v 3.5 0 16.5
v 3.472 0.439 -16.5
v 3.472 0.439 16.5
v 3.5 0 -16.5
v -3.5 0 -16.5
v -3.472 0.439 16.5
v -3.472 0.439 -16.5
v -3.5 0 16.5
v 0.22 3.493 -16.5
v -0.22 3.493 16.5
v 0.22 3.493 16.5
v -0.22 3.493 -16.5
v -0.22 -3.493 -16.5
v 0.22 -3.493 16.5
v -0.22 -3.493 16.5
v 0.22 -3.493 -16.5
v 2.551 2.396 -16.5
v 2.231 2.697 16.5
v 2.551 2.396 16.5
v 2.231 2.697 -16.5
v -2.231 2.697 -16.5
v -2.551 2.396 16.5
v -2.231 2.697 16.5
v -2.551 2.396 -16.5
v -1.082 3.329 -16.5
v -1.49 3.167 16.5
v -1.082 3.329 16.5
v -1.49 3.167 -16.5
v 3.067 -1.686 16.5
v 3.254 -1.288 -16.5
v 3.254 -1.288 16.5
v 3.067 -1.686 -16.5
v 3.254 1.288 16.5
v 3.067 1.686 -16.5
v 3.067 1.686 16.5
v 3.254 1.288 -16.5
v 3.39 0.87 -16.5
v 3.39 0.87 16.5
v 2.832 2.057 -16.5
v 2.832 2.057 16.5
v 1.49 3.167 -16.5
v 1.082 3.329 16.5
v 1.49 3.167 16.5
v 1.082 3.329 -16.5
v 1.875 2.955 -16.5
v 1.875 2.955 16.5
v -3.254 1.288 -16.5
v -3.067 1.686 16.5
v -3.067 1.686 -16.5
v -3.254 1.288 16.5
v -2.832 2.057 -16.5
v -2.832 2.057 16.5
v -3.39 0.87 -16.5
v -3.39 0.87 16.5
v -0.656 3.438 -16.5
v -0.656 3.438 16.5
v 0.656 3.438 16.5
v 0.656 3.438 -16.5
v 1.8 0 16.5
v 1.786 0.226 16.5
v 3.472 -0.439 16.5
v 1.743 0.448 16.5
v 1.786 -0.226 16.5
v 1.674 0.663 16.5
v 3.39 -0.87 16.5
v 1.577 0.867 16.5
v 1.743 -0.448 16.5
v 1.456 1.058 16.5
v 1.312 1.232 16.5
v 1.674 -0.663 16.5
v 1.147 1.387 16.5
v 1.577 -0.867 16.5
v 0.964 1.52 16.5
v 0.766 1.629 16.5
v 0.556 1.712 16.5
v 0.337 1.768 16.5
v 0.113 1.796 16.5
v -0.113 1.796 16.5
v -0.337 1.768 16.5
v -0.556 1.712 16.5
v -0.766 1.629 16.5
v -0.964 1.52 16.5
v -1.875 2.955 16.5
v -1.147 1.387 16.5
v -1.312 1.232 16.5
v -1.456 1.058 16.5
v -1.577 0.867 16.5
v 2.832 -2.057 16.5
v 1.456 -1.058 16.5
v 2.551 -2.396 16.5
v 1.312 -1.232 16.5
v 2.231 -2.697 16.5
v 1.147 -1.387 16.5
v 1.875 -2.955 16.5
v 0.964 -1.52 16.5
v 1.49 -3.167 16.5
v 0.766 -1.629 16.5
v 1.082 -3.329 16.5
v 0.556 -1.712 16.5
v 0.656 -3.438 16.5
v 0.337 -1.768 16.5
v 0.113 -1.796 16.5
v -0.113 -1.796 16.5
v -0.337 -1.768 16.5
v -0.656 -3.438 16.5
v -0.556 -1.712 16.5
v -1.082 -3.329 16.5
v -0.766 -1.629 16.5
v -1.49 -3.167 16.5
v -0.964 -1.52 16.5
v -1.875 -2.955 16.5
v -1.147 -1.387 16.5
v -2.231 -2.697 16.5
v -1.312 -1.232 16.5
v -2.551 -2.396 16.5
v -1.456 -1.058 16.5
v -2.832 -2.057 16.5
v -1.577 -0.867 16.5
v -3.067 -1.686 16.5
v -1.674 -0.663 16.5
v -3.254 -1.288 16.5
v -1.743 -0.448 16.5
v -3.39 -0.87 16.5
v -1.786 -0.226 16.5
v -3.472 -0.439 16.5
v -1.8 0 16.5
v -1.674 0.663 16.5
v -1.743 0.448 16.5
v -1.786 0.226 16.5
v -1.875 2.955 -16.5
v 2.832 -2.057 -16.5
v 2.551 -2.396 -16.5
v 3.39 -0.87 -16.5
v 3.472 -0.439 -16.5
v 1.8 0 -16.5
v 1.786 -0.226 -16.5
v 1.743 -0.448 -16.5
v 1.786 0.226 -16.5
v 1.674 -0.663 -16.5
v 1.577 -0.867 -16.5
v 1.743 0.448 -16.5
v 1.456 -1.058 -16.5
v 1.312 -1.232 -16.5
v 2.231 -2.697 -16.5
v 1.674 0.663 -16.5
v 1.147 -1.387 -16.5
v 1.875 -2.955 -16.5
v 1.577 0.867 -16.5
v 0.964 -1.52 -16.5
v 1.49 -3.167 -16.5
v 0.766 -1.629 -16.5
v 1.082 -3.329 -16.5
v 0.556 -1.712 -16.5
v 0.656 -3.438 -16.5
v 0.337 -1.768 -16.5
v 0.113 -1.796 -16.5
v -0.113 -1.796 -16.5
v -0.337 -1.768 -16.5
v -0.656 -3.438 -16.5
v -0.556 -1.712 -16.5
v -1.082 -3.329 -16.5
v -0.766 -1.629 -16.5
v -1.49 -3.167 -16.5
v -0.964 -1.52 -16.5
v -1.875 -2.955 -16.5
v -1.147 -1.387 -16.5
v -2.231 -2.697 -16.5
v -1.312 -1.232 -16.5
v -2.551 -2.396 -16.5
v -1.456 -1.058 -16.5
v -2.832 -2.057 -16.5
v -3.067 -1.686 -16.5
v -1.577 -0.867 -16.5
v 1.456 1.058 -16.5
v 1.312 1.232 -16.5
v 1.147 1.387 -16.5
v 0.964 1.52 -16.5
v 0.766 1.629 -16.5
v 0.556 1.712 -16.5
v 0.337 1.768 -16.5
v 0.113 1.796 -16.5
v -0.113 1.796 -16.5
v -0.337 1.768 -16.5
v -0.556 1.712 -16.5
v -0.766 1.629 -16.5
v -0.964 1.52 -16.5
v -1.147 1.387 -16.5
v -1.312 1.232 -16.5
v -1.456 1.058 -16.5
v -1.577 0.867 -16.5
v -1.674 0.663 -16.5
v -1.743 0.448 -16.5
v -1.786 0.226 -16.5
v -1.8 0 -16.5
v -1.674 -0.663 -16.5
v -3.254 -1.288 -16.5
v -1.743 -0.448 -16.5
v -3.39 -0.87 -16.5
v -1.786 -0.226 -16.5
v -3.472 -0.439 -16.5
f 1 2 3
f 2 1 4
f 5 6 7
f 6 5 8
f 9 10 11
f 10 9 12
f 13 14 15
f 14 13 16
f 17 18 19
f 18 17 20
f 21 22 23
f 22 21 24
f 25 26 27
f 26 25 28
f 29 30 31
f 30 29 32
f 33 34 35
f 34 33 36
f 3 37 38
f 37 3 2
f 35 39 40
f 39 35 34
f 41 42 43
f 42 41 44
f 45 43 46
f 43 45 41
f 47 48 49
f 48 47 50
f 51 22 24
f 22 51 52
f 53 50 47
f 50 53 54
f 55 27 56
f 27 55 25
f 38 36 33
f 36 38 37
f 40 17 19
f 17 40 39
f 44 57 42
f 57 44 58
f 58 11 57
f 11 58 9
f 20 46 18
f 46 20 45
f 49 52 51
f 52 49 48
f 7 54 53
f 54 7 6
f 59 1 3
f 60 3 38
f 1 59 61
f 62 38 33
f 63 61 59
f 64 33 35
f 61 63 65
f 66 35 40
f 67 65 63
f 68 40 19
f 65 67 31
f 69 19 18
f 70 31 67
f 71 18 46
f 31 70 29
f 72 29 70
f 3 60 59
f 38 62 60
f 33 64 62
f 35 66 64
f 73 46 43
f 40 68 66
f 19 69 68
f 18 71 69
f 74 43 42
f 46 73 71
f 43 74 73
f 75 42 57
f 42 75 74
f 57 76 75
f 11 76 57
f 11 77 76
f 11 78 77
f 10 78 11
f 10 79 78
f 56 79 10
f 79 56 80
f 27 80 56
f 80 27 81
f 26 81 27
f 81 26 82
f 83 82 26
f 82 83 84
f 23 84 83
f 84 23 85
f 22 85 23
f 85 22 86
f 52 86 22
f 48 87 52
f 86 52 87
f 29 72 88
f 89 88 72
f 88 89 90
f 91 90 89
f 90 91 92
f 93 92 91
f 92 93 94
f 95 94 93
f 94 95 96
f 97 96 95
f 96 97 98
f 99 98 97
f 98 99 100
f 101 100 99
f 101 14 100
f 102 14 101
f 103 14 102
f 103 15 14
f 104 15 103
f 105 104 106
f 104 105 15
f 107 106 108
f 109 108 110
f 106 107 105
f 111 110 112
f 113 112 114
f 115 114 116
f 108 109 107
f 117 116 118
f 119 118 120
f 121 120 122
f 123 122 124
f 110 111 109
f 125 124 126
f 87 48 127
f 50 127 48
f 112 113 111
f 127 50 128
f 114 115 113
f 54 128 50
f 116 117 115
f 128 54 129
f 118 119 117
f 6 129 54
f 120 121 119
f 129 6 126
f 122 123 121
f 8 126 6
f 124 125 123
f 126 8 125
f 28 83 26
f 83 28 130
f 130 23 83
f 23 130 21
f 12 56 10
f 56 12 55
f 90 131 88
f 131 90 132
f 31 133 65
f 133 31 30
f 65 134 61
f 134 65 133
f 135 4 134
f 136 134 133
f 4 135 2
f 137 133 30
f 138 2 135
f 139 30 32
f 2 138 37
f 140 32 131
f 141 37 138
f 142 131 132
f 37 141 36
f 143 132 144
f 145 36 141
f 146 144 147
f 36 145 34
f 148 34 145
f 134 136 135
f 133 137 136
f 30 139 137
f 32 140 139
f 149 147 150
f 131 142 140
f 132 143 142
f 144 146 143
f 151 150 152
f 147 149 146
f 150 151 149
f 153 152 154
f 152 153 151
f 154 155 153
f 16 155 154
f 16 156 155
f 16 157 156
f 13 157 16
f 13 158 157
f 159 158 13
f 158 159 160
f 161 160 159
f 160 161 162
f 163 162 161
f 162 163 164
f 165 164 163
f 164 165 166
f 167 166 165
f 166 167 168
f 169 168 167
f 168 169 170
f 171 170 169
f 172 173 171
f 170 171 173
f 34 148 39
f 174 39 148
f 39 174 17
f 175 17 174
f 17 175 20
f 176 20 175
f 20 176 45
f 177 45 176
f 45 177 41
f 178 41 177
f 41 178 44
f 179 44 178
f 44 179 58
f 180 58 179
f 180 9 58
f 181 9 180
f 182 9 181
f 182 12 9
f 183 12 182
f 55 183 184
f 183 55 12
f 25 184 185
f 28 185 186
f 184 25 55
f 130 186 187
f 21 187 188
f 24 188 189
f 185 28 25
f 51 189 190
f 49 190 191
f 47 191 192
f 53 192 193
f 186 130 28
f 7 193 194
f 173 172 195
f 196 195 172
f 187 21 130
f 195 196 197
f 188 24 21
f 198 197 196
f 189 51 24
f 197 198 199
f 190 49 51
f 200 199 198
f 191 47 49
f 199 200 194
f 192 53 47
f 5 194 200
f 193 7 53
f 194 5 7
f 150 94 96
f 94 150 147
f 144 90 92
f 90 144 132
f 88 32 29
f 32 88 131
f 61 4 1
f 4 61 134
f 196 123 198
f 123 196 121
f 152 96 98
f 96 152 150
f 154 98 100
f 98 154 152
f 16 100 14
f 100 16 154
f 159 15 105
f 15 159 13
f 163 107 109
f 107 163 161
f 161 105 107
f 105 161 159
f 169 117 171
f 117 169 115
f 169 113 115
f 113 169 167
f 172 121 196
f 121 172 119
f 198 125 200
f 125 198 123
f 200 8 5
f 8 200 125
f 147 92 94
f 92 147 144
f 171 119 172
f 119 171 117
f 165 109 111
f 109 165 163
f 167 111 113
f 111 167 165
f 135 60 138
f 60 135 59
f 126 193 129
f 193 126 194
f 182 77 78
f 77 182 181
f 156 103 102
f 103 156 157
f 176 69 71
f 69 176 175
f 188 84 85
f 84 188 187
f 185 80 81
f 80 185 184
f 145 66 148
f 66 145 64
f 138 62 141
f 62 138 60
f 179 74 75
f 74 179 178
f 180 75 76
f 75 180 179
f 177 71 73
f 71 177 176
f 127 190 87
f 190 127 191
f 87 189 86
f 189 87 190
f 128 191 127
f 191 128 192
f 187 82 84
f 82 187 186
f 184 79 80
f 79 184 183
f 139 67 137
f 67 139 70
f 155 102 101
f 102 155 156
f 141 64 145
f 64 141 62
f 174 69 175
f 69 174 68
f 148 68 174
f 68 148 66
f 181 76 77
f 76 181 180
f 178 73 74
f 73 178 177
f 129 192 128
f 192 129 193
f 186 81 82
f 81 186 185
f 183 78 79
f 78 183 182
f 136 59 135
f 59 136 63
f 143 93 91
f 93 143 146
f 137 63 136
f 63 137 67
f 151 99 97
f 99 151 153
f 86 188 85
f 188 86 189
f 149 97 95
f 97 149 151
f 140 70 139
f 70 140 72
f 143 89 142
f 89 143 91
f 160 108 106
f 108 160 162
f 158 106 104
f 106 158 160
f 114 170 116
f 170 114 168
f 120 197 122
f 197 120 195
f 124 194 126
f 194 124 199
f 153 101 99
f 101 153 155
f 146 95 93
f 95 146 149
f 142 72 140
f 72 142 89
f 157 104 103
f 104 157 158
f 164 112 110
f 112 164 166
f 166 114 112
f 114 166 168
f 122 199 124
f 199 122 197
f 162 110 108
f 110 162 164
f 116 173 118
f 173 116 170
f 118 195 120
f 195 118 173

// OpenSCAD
$fn = 50;


difference() {
	union() {
		translate(v = [0, 0, -16.5000000000]) {
			cylinder(h = 33, r = 3.5000000000);
		}
	}
	union() {
		translate(v = [0, 0, -100.0000000000]) {
			cylinder(h = 200, r = 1.8000000000);
		}
	}
}
